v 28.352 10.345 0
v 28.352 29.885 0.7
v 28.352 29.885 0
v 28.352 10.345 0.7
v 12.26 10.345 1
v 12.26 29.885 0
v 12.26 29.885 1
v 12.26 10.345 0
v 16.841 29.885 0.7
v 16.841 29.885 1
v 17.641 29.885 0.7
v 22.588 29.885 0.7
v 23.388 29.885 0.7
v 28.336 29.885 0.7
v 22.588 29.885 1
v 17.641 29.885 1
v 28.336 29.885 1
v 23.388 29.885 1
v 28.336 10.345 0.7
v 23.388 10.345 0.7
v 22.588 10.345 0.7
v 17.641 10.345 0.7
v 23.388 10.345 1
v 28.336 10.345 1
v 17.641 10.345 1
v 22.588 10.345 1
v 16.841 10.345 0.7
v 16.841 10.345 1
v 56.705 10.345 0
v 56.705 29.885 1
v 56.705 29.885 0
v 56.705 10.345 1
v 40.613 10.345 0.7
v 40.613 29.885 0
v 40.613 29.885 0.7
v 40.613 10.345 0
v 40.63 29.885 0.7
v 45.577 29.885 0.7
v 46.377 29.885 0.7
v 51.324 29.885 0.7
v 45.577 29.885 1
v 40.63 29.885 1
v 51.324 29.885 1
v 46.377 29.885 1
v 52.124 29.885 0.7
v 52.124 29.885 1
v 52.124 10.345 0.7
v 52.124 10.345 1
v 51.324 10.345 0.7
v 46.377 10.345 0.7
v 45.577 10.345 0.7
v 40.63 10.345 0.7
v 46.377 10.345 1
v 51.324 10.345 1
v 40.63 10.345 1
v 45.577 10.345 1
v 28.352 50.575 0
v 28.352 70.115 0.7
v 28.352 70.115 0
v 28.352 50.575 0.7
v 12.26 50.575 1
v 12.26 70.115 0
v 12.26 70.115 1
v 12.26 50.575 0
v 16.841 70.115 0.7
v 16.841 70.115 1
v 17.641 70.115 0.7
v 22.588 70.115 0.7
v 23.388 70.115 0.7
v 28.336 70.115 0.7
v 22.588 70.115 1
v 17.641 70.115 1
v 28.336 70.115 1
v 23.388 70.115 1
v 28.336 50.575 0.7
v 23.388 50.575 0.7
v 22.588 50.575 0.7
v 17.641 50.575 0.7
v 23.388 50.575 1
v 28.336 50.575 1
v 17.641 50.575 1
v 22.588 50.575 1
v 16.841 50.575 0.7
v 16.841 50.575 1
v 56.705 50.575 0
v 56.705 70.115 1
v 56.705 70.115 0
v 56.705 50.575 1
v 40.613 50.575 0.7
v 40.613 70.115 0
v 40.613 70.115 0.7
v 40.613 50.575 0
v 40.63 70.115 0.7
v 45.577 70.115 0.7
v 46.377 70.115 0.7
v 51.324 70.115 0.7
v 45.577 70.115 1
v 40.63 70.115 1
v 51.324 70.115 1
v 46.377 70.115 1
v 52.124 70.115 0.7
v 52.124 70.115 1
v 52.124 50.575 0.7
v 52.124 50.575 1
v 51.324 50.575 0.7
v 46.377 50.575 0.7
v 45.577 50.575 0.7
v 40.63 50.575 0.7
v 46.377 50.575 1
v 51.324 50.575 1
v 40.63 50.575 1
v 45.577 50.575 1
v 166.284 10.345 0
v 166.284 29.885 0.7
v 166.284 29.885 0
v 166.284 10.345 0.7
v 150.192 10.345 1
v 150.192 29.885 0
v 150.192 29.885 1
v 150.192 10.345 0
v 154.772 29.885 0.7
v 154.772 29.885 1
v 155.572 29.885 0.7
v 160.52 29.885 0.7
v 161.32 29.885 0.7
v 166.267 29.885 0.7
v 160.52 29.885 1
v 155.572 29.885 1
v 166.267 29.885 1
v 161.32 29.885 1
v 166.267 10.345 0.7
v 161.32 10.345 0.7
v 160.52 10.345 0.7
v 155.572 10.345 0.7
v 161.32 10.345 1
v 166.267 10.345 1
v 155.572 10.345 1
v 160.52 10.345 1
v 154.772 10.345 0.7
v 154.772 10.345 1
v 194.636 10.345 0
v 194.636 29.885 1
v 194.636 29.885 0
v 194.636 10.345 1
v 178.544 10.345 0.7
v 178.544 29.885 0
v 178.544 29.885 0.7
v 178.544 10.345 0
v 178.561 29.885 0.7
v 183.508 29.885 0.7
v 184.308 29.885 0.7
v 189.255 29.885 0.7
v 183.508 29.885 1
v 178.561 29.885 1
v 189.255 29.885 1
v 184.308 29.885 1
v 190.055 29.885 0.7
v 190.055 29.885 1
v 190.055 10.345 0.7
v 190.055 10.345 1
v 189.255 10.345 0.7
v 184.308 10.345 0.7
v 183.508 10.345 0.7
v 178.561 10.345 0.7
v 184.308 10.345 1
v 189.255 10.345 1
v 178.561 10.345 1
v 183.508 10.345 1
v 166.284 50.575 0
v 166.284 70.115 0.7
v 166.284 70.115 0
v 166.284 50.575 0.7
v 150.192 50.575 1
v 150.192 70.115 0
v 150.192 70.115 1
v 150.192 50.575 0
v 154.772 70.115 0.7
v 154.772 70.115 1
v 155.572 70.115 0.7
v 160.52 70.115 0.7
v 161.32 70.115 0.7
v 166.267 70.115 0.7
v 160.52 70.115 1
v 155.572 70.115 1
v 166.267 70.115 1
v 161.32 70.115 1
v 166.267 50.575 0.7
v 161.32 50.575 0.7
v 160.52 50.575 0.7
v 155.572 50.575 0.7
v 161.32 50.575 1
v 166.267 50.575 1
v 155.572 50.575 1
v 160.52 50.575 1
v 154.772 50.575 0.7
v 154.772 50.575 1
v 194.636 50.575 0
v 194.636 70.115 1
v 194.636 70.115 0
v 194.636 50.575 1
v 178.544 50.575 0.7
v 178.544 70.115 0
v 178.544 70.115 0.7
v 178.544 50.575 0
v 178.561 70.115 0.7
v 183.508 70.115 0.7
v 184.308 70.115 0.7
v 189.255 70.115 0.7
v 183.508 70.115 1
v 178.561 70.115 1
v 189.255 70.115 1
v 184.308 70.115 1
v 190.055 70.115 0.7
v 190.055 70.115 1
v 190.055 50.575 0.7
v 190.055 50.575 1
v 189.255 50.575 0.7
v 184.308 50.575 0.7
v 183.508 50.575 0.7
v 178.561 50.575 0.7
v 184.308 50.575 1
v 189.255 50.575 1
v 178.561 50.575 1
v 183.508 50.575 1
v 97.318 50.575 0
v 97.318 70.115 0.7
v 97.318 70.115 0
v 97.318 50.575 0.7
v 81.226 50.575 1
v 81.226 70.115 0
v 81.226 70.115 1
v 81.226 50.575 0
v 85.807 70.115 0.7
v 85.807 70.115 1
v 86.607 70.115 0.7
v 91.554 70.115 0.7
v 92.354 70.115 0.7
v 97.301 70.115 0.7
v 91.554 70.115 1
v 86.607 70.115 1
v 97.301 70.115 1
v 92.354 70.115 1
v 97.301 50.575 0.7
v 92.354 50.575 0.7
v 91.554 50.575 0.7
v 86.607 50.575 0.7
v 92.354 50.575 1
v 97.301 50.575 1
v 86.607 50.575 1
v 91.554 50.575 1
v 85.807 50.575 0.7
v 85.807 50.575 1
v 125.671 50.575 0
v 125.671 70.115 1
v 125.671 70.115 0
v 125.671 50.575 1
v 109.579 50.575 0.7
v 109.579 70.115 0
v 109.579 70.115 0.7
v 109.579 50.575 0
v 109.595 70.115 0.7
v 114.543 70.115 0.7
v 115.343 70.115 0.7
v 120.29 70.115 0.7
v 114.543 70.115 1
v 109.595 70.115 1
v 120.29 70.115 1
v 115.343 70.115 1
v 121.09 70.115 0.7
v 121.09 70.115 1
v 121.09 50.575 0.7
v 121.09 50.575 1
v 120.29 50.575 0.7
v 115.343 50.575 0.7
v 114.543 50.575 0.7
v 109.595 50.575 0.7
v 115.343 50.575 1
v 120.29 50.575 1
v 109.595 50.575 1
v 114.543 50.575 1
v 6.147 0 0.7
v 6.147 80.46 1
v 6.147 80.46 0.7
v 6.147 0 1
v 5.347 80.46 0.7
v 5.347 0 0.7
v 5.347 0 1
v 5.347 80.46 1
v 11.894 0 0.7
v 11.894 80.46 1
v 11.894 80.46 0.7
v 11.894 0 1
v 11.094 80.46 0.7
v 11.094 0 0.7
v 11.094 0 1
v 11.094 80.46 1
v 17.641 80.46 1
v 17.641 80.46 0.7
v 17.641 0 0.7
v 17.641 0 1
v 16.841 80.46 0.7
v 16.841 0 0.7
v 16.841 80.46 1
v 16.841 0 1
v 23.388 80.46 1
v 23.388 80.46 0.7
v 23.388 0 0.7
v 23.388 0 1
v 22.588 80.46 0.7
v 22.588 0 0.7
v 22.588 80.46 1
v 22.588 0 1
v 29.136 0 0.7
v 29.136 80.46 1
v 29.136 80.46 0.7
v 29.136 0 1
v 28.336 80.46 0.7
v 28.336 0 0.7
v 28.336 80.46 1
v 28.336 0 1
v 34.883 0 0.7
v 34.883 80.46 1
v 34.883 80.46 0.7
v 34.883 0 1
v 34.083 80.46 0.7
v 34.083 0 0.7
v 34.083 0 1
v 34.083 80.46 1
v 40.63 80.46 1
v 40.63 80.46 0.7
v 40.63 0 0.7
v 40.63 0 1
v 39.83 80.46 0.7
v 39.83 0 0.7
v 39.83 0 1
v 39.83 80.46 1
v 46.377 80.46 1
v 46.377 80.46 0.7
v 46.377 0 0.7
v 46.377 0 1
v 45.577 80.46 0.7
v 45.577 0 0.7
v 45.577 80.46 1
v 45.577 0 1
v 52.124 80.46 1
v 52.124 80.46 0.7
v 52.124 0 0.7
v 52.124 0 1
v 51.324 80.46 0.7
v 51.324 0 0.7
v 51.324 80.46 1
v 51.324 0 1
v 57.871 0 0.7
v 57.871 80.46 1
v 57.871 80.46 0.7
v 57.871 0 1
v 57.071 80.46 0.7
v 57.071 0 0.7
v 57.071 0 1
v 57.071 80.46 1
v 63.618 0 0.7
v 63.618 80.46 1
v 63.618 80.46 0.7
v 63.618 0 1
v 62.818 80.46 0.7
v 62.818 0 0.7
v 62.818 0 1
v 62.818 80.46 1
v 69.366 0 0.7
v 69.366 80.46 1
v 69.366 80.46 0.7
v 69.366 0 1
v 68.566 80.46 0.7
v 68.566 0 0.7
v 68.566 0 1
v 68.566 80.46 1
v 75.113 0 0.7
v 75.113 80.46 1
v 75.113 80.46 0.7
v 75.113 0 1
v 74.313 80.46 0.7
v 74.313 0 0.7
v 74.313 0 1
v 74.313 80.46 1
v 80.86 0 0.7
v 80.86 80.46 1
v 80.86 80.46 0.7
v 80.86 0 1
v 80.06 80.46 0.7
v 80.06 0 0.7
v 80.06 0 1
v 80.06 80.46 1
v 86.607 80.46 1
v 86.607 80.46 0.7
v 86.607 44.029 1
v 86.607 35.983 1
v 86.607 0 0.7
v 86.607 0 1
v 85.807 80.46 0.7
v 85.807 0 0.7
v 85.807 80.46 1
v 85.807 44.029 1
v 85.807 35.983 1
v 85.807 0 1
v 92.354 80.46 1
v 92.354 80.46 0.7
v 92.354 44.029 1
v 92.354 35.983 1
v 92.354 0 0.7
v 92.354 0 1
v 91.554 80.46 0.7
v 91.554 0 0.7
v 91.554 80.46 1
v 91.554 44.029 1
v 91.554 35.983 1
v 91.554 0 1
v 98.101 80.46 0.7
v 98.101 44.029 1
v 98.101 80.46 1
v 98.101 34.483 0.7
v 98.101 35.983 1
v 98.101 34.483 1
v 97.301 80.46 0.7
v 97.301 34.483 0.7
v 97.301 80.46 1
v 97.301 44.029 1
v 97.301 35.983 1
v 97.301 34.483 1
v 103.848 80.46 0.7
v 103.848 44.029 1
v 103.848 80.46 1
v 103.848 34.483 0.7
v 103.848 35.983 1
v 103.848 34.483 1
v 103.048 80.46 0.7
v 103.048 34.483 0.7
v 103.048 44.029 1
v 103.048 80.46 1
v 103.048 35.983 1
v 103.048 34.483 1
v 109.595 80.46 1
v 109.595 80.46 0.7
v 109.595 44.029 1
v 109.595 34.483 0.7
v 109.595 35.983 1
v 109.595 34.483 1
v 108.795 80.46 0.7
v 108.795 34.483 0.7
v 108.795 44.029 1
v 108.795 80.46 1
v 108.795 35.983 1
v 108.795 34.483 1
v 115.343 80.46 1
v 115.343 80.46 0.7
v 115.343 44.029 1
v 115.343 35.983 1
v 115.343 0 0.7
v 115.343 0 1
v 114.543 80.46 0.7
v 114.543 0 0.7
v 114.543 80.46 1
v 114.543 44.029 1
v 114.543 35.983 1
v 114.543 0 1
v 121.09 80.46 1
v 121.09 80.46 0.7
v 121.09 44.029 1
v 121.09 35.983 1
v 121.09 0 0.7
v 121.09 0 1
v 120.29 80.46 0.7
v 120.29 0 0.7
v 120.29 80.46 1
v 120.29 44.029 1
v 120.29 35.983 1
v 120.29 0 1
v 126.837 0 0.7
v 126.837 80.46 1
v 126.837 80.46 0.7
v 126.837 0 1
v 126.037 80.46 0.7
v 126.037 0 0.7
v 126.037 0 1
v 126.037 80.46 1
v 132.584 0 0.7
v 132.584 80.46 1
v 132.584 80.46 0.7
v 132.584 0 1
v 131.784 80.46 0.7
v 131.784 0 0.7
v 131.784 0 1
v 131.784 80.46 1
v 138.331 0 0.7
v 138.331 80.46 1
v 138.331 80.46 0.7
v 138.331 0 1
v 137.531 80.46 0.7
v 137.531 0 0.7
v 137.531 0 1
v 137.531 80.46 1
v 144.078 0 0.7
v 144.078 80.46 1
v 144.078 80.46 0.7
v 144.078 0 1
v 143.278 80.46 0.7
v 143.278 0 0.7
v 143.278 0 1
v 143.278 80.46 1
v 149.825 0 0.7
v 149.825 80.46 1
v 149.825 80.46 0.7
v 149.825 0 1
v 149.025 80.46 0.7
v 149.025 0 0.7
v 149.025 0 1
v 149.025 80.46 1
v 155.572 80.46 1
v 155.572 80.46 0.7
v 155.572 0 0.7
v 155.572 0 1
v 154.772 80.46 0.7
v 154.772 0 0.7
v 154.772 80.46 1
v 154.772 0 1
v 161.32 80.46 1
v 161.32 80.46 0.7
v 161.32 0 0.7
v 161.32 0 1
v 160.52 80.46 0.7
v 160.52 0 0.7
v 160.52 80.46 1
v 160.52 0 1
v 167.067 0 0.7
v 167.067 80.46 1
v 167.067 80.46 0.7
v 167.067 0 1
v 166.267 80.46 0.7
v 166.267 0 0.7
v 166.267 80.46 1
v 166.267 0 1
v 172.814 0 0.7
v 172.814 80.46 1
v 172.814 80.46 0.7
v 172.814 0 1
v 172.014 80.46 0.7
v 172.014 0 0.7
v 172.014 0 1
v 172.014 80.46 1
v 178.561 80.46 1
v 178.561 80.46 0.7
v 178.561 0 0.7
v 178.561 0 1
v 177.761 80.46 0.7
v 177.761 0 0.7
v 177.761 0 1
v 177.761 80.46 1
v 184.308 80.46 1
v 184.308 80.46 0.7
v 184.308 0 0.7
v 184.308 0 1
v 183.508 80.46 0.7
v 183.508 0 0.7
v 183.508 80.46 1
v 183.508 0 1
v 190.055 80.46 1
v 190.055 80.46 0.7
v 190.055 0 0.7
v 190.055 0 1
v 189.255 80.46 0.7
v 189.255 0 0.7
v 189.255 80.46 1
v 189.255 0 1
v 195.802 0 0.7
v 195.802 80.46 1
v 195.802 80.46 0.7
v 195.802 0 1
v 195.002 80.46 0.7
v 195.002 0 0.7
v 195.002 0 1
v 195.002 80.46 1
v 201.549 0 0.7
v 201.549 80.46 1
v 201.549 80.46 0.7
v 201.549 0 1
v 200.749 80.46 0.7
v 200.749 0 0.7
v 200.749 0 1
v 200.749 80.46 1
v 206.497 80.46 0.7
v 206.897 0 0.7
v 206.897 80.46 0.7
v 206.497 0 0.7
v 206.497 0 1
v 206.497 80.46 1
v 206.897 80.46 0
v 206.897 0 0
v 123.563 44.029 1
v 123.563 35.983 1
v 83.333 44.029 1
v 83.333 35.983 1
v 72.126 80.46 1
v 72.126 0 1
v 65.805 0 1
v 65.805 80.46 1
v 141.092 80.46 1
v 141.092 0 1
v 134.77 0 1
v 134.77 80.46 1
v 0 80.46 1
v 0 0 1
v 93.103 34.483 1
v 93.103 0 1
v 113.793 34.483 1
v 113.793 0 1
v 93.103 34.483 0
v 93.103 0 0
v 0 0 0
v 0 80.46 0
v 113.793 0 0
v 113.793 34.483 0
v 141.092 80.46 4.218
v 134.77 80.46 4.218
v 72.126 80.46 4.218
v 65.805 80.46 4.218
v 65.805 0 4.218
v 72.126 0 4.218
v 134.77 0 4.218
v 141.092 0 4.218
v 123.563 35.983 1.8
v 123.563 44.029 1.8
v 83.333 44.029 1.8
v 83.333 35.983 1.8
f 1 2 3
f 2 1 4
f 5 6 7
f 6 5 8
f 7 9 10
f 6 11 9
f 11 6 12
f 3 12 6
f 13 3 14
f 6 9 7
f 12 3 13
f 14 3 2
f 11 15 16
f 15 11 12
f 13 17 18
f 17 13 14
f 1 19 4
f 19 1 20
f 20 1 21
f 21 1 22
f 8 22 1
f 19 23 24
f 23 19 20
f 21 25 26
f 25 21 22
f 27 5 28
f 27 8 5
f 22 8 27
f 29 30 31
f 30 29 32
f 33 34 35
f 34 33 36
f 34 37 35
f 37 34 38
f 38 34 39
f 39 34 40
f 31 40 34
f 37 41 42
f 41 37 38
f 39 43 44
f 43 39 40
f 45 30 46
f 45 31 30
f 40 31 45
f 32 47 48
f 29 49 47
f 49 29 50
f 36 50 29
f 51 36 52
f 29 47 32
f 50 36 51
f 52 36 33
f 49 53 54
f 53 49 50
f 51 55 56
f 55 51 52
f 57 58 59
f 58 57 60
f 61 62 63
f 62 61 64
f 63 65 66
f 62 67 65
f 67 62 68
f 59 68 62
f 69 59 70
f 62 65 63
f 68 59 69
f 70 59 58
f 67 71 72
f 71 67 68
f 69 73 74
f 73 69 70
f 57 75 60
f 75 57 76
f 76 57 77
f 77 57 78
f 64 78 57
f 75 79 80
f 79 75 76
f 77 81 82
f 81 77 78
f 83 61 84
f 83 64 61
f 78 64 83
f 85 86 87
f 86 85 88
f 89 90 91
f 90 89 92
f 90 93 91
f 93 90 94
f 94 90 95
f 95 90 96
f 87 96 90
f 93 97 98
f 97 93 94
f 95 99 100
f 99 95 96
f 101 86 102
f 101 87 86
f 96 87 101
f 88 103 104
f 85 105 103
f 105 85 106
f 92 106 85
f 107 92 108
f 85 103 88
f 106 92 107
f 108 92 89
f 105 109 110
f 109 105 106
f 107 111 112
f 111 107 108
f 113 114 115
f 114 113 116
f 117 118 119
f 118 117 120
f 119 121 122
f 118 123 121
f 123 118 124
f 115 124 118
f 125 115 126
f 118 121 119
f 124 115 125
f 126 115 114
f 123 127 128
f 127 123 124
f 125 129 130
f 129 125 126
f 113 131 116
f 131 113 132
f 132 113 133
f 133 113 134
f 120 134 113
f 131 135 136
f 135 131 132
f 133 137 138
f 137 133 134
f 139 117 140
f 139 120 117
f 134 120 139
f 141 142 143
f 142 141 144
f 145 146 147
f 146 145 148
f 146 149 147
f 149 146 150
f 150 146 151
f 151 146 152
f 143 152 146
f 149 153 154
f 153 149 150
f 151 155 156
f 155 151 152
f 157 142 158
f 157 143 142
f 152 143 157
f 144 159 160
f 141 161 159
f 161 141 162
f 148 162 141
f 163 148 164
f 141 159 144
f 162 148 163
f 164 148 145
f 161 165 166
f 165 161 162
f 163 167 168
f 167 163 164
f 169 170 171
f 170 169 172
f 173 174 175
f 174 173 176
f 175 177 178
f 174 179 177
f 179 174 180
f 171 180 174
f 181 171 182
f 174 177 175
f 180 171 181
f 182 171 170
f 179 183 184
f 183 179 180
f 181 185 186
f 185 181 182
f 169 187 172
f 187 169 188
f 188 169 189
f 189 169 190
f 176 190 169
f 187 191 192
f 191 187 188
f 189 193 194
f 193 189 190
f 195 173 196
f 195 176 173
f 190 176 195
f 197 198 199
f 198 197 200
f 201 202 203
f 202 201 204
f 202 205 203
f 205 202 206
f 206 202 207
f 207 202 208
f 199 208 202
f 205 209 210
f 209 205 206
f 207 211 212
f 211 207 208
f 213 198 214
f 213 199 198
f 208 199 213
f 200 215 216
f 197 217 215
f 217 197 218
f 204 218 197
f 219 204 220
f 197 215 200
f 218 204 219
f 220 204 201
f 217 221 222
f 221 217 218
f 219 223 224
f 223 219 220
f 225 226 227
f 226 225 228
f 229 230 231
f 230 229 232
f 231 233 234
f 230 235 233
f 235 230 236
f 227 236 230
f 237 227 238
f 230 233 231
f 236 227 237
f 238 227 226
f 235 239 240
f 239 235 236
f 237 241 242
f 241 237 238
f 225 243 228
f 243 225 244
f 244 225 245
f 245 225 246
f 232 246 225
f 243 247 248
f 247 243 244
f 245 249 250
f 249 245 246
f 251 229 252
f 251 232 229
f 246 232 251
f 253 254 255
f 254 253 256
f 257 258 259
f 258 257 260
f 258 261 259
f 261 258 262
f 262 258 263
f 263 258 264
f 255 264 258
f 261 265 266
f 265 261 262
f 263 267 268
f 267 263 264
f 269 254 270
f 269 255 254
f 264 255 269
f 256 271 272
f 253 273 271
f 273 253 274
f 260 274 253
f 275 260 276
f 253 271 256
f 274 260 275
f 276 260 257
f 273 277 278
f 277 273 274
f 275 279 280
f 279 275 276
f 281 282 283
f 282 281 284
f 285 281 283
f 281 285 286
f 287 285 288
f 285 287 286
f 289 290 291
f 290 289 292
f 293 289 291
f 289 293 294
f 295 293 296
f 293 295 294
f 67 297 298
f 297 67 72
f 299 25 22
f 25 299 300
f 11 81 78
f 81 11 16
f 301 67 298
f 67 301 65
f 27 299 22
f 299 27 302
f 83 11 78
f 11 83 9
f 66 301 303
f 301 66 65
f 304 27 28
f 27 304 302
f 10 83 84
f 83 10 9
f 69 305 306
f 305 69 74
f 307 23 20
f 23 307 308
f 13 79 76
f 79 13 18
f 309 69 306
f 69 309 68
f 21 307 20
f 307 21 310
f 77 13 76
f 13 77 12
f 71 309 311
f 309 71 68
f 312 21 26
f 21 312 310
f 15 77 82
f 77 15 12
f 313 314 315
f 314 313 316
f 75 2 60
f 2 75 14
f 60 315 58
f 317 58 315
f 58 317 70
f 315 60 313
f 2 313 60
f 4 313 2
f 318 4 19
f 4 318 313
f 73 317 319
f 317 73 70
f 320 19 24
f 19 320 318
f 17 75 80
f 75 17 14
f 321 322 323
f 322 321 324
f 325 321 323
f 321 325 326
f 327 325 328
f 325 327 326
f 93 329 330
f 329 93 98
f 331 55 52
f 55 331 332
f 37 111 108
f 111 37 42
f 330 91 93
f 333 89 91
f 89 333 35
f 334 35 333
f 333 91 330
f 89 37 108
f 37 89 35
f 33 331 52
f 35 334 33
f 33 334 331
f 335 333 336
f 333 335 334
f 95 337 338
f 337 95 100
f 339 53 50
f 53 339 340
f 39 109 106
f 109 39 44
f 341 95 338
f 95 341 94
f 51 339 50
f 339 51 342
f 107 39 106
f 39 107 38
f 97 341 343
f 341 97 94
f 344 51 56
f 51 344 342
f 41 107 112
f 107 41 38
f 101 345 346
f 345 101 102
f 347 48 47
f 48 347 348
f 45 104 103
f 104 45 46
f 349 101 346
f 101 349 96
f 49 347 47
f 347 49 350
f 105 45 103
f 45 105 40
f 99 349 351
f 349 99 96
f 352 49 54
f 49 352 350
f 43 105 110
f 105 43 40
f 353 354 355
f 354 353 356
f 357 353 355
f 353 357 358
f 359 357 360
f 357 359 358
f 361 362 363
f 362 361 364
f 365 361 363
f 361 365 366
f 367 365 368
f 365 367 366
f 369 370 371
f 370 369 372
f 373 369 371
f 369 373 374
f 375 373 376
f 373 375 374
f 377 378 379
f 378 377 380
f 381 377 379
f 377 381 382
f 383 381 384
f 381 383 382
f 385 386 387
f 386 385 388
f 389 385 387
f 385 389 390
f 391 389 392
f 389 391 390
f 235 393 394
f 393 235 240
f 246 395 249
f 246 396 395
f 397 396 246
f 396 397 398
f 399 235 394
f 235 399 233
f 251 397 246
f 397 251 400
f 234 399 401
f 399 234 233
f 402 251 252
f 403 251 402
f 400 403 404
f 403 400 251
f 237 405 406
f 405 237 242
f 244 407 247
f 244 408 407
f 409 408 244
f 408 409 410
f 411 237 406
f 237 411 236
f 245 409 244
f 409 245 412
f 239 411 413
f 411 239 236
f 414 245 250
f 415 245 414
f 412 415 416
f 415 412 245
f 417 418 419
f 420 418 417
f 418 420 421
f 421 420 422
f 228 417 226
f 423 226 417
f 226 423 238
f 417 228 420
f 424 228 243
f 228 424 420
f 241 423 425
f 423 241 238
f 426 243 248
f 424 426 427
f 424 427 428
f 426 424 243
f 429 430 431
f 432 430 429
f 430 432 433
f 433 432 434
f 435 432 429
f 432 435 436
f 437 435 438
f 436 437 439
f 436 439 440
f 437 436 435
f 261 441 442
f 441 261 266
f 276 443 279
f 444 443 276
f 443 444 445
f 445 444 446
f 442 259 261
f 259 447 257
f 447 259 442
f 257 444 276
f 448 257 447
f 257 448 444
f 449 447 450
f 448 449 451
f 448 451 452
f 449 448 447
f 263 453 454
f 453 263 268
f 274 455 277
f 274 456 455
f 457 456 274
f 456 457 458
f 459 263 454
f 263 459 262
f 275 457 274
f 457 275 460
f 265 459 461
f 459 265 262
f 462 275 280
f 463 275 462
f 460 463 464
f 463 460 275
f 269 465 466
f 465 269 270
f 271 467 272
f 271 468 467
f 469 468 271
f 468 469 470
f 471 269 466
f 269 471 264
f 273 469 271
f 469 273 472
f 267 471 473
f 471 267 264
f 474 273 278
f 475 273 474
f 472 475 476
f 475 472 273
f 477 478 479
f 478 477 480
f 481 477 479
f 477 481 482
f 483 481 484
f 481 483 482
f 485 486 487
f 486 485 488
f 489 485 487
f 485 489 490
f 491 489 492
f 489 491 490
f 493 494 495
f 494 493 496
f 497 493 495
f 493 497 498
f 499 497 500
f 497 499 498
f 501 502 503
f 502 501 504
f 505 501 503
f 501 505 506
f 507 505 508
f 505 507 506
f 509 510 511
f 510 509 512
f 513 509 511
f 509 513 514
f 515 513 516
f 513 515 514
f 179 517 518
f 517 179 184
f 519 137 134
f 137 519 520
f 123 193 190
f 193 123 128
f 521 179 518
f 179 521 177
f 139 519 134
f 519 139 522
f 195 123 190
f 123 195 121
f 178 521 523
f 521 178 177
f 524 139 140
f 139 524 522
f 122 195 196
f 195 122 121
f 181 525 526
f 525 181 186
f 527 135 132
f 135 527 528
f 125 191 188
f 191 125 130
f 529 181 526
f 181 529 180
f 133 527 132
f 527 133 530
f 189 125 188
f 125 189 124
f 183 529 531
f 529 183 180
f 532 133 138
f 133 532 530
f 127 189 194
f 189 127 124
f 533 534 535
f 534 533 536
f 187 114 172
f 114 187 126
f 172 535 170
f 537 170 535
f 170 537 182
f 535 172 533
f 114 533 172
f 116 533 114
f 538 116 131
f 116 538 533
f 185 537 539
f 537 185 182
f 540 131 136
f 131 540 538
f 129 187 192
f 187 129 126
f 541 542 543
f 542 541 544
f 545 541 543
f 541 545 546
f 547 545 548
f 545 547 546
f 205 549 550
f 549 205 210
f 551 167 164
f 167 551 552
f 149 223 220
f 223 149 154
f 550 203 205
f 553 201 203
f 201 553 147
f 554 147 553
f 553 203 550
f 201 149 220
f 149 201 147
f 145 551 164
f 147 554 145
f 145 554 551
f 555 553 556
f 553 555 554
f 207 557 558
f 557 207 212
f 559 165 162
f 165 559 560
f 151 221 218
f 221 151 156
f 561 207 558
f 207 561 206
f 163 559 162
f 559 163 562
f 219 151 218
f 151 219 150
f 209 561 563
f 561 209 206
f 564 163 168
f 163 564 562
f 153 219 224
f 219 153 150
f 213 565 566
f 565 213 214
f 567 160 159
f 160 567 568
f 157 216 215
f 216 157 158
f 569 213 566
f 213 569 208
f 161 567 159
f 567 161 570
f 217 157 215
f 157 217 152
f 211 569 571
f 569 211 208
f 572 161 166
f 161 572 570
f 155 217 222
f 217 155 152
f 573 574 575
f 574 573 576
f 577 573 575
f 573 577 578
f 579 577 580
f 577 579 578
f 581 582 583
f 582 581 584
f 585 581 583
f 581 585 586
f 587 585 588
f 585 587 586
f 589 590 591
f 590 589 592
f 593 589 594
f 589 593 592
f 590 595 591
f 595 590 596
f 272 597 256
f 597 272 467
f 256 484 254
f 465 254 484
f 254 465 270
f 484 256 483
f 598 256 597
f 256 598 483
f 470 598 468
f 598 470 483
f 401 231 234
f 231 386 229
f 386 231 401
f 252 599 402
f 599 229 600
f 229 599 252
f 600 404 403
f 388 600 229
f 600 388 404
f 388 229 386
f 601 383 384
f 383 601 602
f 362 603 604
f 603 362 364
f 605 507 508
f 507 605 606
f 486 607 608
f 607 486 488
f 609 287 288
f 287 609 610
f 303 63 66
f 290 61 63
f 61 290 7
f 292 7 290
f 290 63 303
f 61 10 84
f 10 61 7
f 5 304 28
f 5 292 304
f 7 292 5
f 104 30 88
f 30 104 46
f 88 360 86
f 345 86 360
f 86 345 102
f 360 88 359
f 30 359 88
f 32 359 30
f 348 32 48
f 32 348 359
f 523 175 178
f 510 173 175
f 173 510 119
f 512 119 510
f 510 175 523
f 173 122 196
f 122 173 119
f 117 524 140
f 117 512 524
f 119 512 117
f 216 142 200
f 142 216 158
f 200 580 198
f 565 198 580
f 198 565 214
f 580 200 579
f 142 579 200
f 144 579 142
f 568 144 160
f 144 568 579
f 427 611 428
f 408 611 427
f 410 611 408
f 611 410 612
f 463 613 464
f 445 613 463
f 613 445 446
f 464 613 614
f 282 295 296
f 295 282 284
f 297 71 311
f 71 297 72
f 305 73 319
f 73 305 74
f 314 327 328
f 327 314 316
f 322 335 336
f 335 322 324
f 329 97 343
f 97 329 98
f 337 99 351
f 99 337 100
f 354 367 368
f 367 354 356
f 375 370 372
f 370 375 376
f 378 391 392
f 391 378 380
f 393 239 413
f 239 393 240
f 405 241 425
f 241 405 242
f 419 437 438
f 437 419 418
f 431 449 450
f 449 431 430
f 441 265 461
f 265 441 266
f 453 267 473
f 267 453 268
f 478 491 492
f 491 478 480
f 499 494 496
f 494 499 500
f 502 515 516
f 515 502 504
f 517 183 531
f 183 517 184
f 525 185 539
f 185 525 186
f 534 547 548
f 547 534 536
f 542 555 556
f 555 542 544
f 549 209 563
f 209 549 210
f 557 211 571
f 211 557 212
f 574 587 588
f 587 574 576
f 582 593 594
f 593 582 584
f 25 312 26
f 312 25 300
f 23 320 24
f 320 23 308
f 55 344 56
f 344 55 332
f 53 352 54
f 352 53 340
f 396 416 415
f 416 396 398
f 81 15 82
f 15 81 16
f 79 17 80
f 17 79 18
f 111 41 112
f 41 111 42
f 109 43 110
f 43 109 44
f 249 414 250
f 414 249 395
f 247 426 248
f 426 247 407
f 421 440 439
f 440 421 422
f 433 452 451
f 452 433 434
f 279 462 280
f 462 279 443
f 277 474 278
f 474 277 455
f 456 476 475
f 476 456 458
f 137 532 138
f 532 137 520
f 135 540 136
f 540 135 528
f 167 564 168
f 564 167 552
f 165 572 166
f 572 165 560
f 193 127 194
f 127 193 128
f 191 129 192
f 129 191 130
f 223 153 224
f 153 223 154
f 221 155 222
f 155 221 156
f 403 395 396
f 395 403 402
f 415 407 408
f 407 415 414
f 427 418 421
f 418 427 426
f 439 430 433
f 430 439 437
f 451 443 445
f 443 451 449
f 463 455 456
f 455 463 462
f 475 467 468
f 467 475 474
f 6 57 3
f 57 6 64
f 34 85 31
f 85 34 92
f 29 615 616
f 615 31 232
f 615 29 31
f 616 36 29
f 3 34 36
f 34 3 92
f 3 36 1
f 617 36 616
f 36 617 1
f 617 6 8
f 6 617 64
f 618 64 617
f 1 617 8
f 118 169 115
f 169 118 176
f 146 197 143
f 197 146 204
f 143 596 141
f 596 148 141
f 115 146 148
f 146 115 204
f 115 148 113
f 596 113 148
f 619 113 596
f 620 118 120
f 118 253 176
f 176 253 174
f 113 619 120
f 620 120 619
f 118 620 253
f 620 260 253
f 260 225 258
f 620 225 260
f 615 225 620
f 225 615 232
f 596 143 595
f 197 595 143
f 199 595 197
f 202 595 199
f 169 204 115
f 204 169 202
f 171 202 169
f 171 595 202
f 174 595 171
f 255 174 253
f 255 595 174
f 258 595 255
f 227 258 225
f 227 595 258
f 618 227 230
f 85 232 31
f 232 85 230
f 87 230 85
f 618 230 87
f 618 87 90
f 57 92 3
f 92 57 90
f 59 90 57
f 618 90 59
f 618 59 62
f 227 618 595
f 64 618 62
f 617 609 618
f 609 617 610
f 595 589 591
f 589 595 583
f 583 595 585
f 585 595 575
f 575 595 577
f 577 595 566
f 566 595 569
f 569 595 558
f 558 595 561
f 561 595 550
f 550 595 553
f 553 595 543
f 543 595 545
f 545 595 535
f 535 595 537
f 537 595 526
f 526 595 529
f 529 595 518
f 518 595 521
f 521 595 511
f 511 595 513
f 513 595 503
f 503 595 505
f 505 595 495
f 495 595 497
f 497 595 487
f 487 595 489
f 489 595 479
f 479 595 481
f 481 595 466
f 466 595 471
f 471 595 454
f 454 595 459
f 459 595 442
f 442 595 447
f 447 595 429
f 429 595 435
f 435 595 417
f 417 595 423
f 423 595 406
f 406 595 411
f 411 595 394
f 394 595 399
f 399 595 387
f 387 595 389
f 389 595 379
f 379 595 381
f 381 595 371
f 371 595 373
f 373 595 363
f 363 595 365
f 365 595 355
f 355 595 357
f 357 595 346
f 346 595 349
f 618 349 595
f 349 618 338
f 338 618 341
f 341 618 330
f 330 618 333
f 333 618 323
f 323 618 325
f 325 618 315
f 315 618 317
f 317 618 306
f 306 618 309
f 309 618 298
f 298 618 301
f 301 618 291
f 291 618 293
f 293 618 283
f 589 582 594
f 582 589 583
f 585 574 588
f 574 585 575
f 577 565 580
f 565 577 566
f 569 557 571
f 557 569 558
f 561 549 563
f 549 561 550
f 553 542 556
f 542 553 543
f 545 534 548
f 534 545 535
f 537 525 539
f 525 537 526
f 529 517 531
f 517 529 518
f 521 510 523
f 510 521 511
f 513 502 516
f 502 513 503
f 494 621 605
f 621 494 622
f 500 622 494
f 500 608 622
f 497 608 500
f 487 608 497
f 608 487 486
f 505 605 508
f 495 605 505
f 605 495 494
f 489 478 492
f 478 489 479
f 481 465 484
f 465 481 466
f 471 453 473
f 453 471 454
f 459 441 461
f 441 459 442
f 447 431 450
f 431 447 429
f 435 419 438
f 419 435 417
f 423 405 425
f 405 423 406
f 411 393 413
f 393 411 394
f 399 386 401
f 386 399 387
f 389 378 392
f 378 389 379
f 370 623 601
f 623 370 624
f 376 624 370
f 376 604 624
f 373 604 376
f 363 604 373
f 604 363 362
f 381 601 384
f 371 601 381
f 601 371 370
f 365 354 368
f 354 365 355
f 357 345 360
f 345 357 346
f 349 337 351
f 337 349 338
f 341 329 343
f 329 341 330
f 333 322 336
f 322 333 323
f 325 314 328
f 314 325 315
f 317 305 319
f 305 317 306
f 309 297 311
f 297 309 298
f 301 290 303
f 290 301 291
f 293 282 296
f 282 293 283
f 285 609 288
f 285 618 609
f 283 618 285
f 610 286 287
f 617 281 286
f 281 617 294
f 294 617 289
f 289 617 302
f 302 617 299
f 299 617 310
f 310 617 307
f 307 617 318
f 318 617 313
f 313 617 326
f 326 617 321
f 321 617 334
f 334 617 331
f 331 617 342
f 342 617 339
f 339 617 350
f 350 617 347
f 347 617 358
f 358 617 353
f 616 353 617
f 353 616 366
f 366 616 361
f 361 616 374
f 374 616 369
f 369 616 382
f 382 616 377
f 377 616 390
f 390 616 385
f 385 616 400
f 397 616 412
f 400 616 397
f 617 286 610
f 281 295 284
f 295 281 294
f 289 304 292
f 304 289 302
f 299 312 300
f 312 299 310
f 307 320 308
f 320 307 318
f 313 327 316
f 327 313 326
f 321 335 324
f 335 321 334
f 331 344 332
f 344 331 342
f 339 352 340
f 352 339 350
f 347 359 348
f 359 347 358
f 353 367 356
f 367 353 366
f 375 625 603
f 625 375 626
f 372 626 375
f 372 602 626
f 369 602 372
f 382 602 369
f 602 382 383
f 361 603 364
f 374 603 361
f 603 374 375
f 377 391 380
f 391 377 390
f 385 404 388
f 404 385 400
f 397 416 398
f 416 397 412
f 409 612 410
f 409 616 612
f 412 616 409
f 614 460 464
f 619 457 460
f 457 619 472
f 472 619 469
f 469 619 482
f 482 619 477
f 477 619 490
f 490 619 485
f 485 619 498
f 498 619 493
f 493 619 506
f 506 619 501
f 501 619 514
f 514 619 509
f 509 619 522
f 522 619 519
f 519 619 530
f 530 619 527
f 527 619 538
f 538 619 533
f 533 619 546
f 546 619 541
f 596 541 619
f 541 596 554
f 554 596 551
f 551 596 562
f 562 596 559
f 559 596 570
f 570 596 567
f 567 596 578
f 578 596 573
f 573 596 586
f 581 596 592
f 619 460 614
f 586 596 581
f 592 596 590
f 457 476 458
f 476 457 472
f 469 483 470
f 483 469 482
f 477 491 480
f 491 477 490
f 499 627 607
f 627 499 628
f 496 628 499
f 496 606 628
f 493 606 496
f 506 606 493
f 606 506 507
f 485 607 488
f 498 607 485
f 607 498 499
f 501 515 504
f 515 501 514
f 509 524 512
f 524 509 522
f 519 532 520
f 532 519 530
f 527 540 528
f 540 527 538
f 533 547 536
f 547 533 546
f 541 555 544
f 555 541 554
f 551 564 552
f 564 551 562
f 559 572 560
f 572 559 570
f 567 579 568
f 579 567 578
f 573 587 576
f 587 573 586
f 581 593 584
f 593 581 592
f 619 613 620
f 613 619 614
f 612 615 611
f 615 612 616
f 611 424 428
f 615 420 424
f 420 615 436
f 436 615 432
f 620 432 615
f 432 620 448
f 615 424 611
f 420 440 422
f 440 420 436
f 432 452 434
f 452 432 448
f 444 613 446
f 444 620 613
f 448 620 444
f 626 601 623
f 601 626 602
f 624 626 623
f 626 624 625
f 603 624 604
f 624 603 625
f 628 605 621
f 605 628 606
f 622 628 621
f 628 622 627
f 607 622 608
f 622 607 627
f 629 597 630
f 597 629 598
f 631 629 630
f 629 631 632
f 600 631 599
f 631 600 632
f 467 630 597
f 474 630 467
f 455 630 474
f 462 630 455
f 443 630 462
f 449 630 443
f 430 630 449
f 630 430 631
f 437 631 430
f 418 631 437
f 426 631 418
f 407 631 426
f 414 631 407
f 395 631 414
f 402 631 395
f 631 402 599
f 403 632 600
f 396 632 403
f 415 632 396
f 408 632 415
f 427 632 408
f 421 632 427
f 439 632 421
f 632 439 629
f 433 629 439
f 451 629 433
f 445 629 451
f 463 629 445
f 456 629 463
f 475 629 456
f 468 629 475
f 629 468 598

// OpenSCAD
/*
 * PROMPT: Front wall panel of the Cities-Skylines-style police station main building
 * in H0 scale (1:87). Three-bay facade: left and right bays with two large windows
 * per floor, centre bay with entrance door on ground floor and two windows on first
 * floor. Vertical siding grooves on exterior face, two full-height pilasters at bay
 * boundaries, raised sign panel above entrance. Flat 1 mm panel, exterior face up.
 */

$fn = 32;
S = 1/87;
panel_t = 1.0;

main_w_real   = 18000;
floor_h_real  = 3500;
pil_w_real    = 550;
pil_proj_real = 280;
win_w_real    = 1400;
win_h_real    = 1700;
door_w_real   = 1800;
door_h_real   = 3000;
sign_w_real   = 3500;
sign_h_real   = 700;
sign_proj     = 0.8;
siding_p_real = 500;
siding_w      = 0.8;
siding_d      = 0.3;

main_w   = main_w_real * S;
floor_h  = floor_h_real * S;
bld_h    = 2 * floor_h;
bay_w    = main_w / 3;
pil_w    = pil_w_real * S;
pil_proj = pil_proj_real * S;
win_w    = win_w_real * S;
win_h    = win_h_real * S;
door_w   = door_w_real * S;
door_h   = door_h_real * S;
sign_w   = sign_w_real * S;
sign_h   = sign_h_real * S;
siding_p = siding_p_real * S;

module wall_front() {
    difference() {
        cube([main_w, bld_h, panel_t]);

        // windows: left bay (b=0), both floors
        for (f = [0:1]) {
            wy = f * floor_h + (floor_h - win_h) / 2;
            g  = (bay_w - 2*win_w) / 3;
            for (i = [0:1])
                translate([g + i*(win_w+g), wy, -1])
                    cube([win_w, win_h, panel_t+2]);
        }

        // windows: right bay (b=2), both floors
        for (f = [0:1]) {
            wy = f * floor_h + (floor_h - win_h) / 2;
            g  = (bay_w - 2*win_w) / 3;
            for (i = [0:1])
                translate([2*bay_w + g + i*(win_w+g), wy, -1])
                    cube([win_w, win_h, panel_t+2]);
        }

        // windows: centre bay (b=1), first floor only
        {
            wy = floor_h + (floor_h - win_h) / 2;
            g  = (bay_w - 2*win_w) / 3;
            for (i = [0:1])
                translate([bay_w + g + i*(win_w+g), wy, -1])
                    cube([win_w, win_h, panel_t+2]);
        }

        // entrance door (centre bay, ground floor)
        translate([bay_w + (bay_w - door_w)/2, 0, -1])
            cube([door_w, door_h, panel_t+2]);

        // vertical siding grooves on exterior face (Z = panel_t)
        for (i = [1 : floor(main_w / siding_p)]) {
            gx = i * siding_p - siding_w/2;
            translate([gx, -1, panel_t - siding_d])
                cube([siding_w, bld_h+2, siding_d+1]);
        }
    }

    // pilasters at bay boundaries (protrude above exterior face)
    for (b = [1, 2])
        translate([b*bay_w - pil_w/2, 0, panel_t])
            cube([pil_w, bld_h, pil_proj]);

    // sign panel above entrance door
    translate([bay_w + (bay_w - sign_w)/2, door_h + 1.5, panel_t])
        cube([sign_w, sign_h, sign_proj]);
}

wall_front();
